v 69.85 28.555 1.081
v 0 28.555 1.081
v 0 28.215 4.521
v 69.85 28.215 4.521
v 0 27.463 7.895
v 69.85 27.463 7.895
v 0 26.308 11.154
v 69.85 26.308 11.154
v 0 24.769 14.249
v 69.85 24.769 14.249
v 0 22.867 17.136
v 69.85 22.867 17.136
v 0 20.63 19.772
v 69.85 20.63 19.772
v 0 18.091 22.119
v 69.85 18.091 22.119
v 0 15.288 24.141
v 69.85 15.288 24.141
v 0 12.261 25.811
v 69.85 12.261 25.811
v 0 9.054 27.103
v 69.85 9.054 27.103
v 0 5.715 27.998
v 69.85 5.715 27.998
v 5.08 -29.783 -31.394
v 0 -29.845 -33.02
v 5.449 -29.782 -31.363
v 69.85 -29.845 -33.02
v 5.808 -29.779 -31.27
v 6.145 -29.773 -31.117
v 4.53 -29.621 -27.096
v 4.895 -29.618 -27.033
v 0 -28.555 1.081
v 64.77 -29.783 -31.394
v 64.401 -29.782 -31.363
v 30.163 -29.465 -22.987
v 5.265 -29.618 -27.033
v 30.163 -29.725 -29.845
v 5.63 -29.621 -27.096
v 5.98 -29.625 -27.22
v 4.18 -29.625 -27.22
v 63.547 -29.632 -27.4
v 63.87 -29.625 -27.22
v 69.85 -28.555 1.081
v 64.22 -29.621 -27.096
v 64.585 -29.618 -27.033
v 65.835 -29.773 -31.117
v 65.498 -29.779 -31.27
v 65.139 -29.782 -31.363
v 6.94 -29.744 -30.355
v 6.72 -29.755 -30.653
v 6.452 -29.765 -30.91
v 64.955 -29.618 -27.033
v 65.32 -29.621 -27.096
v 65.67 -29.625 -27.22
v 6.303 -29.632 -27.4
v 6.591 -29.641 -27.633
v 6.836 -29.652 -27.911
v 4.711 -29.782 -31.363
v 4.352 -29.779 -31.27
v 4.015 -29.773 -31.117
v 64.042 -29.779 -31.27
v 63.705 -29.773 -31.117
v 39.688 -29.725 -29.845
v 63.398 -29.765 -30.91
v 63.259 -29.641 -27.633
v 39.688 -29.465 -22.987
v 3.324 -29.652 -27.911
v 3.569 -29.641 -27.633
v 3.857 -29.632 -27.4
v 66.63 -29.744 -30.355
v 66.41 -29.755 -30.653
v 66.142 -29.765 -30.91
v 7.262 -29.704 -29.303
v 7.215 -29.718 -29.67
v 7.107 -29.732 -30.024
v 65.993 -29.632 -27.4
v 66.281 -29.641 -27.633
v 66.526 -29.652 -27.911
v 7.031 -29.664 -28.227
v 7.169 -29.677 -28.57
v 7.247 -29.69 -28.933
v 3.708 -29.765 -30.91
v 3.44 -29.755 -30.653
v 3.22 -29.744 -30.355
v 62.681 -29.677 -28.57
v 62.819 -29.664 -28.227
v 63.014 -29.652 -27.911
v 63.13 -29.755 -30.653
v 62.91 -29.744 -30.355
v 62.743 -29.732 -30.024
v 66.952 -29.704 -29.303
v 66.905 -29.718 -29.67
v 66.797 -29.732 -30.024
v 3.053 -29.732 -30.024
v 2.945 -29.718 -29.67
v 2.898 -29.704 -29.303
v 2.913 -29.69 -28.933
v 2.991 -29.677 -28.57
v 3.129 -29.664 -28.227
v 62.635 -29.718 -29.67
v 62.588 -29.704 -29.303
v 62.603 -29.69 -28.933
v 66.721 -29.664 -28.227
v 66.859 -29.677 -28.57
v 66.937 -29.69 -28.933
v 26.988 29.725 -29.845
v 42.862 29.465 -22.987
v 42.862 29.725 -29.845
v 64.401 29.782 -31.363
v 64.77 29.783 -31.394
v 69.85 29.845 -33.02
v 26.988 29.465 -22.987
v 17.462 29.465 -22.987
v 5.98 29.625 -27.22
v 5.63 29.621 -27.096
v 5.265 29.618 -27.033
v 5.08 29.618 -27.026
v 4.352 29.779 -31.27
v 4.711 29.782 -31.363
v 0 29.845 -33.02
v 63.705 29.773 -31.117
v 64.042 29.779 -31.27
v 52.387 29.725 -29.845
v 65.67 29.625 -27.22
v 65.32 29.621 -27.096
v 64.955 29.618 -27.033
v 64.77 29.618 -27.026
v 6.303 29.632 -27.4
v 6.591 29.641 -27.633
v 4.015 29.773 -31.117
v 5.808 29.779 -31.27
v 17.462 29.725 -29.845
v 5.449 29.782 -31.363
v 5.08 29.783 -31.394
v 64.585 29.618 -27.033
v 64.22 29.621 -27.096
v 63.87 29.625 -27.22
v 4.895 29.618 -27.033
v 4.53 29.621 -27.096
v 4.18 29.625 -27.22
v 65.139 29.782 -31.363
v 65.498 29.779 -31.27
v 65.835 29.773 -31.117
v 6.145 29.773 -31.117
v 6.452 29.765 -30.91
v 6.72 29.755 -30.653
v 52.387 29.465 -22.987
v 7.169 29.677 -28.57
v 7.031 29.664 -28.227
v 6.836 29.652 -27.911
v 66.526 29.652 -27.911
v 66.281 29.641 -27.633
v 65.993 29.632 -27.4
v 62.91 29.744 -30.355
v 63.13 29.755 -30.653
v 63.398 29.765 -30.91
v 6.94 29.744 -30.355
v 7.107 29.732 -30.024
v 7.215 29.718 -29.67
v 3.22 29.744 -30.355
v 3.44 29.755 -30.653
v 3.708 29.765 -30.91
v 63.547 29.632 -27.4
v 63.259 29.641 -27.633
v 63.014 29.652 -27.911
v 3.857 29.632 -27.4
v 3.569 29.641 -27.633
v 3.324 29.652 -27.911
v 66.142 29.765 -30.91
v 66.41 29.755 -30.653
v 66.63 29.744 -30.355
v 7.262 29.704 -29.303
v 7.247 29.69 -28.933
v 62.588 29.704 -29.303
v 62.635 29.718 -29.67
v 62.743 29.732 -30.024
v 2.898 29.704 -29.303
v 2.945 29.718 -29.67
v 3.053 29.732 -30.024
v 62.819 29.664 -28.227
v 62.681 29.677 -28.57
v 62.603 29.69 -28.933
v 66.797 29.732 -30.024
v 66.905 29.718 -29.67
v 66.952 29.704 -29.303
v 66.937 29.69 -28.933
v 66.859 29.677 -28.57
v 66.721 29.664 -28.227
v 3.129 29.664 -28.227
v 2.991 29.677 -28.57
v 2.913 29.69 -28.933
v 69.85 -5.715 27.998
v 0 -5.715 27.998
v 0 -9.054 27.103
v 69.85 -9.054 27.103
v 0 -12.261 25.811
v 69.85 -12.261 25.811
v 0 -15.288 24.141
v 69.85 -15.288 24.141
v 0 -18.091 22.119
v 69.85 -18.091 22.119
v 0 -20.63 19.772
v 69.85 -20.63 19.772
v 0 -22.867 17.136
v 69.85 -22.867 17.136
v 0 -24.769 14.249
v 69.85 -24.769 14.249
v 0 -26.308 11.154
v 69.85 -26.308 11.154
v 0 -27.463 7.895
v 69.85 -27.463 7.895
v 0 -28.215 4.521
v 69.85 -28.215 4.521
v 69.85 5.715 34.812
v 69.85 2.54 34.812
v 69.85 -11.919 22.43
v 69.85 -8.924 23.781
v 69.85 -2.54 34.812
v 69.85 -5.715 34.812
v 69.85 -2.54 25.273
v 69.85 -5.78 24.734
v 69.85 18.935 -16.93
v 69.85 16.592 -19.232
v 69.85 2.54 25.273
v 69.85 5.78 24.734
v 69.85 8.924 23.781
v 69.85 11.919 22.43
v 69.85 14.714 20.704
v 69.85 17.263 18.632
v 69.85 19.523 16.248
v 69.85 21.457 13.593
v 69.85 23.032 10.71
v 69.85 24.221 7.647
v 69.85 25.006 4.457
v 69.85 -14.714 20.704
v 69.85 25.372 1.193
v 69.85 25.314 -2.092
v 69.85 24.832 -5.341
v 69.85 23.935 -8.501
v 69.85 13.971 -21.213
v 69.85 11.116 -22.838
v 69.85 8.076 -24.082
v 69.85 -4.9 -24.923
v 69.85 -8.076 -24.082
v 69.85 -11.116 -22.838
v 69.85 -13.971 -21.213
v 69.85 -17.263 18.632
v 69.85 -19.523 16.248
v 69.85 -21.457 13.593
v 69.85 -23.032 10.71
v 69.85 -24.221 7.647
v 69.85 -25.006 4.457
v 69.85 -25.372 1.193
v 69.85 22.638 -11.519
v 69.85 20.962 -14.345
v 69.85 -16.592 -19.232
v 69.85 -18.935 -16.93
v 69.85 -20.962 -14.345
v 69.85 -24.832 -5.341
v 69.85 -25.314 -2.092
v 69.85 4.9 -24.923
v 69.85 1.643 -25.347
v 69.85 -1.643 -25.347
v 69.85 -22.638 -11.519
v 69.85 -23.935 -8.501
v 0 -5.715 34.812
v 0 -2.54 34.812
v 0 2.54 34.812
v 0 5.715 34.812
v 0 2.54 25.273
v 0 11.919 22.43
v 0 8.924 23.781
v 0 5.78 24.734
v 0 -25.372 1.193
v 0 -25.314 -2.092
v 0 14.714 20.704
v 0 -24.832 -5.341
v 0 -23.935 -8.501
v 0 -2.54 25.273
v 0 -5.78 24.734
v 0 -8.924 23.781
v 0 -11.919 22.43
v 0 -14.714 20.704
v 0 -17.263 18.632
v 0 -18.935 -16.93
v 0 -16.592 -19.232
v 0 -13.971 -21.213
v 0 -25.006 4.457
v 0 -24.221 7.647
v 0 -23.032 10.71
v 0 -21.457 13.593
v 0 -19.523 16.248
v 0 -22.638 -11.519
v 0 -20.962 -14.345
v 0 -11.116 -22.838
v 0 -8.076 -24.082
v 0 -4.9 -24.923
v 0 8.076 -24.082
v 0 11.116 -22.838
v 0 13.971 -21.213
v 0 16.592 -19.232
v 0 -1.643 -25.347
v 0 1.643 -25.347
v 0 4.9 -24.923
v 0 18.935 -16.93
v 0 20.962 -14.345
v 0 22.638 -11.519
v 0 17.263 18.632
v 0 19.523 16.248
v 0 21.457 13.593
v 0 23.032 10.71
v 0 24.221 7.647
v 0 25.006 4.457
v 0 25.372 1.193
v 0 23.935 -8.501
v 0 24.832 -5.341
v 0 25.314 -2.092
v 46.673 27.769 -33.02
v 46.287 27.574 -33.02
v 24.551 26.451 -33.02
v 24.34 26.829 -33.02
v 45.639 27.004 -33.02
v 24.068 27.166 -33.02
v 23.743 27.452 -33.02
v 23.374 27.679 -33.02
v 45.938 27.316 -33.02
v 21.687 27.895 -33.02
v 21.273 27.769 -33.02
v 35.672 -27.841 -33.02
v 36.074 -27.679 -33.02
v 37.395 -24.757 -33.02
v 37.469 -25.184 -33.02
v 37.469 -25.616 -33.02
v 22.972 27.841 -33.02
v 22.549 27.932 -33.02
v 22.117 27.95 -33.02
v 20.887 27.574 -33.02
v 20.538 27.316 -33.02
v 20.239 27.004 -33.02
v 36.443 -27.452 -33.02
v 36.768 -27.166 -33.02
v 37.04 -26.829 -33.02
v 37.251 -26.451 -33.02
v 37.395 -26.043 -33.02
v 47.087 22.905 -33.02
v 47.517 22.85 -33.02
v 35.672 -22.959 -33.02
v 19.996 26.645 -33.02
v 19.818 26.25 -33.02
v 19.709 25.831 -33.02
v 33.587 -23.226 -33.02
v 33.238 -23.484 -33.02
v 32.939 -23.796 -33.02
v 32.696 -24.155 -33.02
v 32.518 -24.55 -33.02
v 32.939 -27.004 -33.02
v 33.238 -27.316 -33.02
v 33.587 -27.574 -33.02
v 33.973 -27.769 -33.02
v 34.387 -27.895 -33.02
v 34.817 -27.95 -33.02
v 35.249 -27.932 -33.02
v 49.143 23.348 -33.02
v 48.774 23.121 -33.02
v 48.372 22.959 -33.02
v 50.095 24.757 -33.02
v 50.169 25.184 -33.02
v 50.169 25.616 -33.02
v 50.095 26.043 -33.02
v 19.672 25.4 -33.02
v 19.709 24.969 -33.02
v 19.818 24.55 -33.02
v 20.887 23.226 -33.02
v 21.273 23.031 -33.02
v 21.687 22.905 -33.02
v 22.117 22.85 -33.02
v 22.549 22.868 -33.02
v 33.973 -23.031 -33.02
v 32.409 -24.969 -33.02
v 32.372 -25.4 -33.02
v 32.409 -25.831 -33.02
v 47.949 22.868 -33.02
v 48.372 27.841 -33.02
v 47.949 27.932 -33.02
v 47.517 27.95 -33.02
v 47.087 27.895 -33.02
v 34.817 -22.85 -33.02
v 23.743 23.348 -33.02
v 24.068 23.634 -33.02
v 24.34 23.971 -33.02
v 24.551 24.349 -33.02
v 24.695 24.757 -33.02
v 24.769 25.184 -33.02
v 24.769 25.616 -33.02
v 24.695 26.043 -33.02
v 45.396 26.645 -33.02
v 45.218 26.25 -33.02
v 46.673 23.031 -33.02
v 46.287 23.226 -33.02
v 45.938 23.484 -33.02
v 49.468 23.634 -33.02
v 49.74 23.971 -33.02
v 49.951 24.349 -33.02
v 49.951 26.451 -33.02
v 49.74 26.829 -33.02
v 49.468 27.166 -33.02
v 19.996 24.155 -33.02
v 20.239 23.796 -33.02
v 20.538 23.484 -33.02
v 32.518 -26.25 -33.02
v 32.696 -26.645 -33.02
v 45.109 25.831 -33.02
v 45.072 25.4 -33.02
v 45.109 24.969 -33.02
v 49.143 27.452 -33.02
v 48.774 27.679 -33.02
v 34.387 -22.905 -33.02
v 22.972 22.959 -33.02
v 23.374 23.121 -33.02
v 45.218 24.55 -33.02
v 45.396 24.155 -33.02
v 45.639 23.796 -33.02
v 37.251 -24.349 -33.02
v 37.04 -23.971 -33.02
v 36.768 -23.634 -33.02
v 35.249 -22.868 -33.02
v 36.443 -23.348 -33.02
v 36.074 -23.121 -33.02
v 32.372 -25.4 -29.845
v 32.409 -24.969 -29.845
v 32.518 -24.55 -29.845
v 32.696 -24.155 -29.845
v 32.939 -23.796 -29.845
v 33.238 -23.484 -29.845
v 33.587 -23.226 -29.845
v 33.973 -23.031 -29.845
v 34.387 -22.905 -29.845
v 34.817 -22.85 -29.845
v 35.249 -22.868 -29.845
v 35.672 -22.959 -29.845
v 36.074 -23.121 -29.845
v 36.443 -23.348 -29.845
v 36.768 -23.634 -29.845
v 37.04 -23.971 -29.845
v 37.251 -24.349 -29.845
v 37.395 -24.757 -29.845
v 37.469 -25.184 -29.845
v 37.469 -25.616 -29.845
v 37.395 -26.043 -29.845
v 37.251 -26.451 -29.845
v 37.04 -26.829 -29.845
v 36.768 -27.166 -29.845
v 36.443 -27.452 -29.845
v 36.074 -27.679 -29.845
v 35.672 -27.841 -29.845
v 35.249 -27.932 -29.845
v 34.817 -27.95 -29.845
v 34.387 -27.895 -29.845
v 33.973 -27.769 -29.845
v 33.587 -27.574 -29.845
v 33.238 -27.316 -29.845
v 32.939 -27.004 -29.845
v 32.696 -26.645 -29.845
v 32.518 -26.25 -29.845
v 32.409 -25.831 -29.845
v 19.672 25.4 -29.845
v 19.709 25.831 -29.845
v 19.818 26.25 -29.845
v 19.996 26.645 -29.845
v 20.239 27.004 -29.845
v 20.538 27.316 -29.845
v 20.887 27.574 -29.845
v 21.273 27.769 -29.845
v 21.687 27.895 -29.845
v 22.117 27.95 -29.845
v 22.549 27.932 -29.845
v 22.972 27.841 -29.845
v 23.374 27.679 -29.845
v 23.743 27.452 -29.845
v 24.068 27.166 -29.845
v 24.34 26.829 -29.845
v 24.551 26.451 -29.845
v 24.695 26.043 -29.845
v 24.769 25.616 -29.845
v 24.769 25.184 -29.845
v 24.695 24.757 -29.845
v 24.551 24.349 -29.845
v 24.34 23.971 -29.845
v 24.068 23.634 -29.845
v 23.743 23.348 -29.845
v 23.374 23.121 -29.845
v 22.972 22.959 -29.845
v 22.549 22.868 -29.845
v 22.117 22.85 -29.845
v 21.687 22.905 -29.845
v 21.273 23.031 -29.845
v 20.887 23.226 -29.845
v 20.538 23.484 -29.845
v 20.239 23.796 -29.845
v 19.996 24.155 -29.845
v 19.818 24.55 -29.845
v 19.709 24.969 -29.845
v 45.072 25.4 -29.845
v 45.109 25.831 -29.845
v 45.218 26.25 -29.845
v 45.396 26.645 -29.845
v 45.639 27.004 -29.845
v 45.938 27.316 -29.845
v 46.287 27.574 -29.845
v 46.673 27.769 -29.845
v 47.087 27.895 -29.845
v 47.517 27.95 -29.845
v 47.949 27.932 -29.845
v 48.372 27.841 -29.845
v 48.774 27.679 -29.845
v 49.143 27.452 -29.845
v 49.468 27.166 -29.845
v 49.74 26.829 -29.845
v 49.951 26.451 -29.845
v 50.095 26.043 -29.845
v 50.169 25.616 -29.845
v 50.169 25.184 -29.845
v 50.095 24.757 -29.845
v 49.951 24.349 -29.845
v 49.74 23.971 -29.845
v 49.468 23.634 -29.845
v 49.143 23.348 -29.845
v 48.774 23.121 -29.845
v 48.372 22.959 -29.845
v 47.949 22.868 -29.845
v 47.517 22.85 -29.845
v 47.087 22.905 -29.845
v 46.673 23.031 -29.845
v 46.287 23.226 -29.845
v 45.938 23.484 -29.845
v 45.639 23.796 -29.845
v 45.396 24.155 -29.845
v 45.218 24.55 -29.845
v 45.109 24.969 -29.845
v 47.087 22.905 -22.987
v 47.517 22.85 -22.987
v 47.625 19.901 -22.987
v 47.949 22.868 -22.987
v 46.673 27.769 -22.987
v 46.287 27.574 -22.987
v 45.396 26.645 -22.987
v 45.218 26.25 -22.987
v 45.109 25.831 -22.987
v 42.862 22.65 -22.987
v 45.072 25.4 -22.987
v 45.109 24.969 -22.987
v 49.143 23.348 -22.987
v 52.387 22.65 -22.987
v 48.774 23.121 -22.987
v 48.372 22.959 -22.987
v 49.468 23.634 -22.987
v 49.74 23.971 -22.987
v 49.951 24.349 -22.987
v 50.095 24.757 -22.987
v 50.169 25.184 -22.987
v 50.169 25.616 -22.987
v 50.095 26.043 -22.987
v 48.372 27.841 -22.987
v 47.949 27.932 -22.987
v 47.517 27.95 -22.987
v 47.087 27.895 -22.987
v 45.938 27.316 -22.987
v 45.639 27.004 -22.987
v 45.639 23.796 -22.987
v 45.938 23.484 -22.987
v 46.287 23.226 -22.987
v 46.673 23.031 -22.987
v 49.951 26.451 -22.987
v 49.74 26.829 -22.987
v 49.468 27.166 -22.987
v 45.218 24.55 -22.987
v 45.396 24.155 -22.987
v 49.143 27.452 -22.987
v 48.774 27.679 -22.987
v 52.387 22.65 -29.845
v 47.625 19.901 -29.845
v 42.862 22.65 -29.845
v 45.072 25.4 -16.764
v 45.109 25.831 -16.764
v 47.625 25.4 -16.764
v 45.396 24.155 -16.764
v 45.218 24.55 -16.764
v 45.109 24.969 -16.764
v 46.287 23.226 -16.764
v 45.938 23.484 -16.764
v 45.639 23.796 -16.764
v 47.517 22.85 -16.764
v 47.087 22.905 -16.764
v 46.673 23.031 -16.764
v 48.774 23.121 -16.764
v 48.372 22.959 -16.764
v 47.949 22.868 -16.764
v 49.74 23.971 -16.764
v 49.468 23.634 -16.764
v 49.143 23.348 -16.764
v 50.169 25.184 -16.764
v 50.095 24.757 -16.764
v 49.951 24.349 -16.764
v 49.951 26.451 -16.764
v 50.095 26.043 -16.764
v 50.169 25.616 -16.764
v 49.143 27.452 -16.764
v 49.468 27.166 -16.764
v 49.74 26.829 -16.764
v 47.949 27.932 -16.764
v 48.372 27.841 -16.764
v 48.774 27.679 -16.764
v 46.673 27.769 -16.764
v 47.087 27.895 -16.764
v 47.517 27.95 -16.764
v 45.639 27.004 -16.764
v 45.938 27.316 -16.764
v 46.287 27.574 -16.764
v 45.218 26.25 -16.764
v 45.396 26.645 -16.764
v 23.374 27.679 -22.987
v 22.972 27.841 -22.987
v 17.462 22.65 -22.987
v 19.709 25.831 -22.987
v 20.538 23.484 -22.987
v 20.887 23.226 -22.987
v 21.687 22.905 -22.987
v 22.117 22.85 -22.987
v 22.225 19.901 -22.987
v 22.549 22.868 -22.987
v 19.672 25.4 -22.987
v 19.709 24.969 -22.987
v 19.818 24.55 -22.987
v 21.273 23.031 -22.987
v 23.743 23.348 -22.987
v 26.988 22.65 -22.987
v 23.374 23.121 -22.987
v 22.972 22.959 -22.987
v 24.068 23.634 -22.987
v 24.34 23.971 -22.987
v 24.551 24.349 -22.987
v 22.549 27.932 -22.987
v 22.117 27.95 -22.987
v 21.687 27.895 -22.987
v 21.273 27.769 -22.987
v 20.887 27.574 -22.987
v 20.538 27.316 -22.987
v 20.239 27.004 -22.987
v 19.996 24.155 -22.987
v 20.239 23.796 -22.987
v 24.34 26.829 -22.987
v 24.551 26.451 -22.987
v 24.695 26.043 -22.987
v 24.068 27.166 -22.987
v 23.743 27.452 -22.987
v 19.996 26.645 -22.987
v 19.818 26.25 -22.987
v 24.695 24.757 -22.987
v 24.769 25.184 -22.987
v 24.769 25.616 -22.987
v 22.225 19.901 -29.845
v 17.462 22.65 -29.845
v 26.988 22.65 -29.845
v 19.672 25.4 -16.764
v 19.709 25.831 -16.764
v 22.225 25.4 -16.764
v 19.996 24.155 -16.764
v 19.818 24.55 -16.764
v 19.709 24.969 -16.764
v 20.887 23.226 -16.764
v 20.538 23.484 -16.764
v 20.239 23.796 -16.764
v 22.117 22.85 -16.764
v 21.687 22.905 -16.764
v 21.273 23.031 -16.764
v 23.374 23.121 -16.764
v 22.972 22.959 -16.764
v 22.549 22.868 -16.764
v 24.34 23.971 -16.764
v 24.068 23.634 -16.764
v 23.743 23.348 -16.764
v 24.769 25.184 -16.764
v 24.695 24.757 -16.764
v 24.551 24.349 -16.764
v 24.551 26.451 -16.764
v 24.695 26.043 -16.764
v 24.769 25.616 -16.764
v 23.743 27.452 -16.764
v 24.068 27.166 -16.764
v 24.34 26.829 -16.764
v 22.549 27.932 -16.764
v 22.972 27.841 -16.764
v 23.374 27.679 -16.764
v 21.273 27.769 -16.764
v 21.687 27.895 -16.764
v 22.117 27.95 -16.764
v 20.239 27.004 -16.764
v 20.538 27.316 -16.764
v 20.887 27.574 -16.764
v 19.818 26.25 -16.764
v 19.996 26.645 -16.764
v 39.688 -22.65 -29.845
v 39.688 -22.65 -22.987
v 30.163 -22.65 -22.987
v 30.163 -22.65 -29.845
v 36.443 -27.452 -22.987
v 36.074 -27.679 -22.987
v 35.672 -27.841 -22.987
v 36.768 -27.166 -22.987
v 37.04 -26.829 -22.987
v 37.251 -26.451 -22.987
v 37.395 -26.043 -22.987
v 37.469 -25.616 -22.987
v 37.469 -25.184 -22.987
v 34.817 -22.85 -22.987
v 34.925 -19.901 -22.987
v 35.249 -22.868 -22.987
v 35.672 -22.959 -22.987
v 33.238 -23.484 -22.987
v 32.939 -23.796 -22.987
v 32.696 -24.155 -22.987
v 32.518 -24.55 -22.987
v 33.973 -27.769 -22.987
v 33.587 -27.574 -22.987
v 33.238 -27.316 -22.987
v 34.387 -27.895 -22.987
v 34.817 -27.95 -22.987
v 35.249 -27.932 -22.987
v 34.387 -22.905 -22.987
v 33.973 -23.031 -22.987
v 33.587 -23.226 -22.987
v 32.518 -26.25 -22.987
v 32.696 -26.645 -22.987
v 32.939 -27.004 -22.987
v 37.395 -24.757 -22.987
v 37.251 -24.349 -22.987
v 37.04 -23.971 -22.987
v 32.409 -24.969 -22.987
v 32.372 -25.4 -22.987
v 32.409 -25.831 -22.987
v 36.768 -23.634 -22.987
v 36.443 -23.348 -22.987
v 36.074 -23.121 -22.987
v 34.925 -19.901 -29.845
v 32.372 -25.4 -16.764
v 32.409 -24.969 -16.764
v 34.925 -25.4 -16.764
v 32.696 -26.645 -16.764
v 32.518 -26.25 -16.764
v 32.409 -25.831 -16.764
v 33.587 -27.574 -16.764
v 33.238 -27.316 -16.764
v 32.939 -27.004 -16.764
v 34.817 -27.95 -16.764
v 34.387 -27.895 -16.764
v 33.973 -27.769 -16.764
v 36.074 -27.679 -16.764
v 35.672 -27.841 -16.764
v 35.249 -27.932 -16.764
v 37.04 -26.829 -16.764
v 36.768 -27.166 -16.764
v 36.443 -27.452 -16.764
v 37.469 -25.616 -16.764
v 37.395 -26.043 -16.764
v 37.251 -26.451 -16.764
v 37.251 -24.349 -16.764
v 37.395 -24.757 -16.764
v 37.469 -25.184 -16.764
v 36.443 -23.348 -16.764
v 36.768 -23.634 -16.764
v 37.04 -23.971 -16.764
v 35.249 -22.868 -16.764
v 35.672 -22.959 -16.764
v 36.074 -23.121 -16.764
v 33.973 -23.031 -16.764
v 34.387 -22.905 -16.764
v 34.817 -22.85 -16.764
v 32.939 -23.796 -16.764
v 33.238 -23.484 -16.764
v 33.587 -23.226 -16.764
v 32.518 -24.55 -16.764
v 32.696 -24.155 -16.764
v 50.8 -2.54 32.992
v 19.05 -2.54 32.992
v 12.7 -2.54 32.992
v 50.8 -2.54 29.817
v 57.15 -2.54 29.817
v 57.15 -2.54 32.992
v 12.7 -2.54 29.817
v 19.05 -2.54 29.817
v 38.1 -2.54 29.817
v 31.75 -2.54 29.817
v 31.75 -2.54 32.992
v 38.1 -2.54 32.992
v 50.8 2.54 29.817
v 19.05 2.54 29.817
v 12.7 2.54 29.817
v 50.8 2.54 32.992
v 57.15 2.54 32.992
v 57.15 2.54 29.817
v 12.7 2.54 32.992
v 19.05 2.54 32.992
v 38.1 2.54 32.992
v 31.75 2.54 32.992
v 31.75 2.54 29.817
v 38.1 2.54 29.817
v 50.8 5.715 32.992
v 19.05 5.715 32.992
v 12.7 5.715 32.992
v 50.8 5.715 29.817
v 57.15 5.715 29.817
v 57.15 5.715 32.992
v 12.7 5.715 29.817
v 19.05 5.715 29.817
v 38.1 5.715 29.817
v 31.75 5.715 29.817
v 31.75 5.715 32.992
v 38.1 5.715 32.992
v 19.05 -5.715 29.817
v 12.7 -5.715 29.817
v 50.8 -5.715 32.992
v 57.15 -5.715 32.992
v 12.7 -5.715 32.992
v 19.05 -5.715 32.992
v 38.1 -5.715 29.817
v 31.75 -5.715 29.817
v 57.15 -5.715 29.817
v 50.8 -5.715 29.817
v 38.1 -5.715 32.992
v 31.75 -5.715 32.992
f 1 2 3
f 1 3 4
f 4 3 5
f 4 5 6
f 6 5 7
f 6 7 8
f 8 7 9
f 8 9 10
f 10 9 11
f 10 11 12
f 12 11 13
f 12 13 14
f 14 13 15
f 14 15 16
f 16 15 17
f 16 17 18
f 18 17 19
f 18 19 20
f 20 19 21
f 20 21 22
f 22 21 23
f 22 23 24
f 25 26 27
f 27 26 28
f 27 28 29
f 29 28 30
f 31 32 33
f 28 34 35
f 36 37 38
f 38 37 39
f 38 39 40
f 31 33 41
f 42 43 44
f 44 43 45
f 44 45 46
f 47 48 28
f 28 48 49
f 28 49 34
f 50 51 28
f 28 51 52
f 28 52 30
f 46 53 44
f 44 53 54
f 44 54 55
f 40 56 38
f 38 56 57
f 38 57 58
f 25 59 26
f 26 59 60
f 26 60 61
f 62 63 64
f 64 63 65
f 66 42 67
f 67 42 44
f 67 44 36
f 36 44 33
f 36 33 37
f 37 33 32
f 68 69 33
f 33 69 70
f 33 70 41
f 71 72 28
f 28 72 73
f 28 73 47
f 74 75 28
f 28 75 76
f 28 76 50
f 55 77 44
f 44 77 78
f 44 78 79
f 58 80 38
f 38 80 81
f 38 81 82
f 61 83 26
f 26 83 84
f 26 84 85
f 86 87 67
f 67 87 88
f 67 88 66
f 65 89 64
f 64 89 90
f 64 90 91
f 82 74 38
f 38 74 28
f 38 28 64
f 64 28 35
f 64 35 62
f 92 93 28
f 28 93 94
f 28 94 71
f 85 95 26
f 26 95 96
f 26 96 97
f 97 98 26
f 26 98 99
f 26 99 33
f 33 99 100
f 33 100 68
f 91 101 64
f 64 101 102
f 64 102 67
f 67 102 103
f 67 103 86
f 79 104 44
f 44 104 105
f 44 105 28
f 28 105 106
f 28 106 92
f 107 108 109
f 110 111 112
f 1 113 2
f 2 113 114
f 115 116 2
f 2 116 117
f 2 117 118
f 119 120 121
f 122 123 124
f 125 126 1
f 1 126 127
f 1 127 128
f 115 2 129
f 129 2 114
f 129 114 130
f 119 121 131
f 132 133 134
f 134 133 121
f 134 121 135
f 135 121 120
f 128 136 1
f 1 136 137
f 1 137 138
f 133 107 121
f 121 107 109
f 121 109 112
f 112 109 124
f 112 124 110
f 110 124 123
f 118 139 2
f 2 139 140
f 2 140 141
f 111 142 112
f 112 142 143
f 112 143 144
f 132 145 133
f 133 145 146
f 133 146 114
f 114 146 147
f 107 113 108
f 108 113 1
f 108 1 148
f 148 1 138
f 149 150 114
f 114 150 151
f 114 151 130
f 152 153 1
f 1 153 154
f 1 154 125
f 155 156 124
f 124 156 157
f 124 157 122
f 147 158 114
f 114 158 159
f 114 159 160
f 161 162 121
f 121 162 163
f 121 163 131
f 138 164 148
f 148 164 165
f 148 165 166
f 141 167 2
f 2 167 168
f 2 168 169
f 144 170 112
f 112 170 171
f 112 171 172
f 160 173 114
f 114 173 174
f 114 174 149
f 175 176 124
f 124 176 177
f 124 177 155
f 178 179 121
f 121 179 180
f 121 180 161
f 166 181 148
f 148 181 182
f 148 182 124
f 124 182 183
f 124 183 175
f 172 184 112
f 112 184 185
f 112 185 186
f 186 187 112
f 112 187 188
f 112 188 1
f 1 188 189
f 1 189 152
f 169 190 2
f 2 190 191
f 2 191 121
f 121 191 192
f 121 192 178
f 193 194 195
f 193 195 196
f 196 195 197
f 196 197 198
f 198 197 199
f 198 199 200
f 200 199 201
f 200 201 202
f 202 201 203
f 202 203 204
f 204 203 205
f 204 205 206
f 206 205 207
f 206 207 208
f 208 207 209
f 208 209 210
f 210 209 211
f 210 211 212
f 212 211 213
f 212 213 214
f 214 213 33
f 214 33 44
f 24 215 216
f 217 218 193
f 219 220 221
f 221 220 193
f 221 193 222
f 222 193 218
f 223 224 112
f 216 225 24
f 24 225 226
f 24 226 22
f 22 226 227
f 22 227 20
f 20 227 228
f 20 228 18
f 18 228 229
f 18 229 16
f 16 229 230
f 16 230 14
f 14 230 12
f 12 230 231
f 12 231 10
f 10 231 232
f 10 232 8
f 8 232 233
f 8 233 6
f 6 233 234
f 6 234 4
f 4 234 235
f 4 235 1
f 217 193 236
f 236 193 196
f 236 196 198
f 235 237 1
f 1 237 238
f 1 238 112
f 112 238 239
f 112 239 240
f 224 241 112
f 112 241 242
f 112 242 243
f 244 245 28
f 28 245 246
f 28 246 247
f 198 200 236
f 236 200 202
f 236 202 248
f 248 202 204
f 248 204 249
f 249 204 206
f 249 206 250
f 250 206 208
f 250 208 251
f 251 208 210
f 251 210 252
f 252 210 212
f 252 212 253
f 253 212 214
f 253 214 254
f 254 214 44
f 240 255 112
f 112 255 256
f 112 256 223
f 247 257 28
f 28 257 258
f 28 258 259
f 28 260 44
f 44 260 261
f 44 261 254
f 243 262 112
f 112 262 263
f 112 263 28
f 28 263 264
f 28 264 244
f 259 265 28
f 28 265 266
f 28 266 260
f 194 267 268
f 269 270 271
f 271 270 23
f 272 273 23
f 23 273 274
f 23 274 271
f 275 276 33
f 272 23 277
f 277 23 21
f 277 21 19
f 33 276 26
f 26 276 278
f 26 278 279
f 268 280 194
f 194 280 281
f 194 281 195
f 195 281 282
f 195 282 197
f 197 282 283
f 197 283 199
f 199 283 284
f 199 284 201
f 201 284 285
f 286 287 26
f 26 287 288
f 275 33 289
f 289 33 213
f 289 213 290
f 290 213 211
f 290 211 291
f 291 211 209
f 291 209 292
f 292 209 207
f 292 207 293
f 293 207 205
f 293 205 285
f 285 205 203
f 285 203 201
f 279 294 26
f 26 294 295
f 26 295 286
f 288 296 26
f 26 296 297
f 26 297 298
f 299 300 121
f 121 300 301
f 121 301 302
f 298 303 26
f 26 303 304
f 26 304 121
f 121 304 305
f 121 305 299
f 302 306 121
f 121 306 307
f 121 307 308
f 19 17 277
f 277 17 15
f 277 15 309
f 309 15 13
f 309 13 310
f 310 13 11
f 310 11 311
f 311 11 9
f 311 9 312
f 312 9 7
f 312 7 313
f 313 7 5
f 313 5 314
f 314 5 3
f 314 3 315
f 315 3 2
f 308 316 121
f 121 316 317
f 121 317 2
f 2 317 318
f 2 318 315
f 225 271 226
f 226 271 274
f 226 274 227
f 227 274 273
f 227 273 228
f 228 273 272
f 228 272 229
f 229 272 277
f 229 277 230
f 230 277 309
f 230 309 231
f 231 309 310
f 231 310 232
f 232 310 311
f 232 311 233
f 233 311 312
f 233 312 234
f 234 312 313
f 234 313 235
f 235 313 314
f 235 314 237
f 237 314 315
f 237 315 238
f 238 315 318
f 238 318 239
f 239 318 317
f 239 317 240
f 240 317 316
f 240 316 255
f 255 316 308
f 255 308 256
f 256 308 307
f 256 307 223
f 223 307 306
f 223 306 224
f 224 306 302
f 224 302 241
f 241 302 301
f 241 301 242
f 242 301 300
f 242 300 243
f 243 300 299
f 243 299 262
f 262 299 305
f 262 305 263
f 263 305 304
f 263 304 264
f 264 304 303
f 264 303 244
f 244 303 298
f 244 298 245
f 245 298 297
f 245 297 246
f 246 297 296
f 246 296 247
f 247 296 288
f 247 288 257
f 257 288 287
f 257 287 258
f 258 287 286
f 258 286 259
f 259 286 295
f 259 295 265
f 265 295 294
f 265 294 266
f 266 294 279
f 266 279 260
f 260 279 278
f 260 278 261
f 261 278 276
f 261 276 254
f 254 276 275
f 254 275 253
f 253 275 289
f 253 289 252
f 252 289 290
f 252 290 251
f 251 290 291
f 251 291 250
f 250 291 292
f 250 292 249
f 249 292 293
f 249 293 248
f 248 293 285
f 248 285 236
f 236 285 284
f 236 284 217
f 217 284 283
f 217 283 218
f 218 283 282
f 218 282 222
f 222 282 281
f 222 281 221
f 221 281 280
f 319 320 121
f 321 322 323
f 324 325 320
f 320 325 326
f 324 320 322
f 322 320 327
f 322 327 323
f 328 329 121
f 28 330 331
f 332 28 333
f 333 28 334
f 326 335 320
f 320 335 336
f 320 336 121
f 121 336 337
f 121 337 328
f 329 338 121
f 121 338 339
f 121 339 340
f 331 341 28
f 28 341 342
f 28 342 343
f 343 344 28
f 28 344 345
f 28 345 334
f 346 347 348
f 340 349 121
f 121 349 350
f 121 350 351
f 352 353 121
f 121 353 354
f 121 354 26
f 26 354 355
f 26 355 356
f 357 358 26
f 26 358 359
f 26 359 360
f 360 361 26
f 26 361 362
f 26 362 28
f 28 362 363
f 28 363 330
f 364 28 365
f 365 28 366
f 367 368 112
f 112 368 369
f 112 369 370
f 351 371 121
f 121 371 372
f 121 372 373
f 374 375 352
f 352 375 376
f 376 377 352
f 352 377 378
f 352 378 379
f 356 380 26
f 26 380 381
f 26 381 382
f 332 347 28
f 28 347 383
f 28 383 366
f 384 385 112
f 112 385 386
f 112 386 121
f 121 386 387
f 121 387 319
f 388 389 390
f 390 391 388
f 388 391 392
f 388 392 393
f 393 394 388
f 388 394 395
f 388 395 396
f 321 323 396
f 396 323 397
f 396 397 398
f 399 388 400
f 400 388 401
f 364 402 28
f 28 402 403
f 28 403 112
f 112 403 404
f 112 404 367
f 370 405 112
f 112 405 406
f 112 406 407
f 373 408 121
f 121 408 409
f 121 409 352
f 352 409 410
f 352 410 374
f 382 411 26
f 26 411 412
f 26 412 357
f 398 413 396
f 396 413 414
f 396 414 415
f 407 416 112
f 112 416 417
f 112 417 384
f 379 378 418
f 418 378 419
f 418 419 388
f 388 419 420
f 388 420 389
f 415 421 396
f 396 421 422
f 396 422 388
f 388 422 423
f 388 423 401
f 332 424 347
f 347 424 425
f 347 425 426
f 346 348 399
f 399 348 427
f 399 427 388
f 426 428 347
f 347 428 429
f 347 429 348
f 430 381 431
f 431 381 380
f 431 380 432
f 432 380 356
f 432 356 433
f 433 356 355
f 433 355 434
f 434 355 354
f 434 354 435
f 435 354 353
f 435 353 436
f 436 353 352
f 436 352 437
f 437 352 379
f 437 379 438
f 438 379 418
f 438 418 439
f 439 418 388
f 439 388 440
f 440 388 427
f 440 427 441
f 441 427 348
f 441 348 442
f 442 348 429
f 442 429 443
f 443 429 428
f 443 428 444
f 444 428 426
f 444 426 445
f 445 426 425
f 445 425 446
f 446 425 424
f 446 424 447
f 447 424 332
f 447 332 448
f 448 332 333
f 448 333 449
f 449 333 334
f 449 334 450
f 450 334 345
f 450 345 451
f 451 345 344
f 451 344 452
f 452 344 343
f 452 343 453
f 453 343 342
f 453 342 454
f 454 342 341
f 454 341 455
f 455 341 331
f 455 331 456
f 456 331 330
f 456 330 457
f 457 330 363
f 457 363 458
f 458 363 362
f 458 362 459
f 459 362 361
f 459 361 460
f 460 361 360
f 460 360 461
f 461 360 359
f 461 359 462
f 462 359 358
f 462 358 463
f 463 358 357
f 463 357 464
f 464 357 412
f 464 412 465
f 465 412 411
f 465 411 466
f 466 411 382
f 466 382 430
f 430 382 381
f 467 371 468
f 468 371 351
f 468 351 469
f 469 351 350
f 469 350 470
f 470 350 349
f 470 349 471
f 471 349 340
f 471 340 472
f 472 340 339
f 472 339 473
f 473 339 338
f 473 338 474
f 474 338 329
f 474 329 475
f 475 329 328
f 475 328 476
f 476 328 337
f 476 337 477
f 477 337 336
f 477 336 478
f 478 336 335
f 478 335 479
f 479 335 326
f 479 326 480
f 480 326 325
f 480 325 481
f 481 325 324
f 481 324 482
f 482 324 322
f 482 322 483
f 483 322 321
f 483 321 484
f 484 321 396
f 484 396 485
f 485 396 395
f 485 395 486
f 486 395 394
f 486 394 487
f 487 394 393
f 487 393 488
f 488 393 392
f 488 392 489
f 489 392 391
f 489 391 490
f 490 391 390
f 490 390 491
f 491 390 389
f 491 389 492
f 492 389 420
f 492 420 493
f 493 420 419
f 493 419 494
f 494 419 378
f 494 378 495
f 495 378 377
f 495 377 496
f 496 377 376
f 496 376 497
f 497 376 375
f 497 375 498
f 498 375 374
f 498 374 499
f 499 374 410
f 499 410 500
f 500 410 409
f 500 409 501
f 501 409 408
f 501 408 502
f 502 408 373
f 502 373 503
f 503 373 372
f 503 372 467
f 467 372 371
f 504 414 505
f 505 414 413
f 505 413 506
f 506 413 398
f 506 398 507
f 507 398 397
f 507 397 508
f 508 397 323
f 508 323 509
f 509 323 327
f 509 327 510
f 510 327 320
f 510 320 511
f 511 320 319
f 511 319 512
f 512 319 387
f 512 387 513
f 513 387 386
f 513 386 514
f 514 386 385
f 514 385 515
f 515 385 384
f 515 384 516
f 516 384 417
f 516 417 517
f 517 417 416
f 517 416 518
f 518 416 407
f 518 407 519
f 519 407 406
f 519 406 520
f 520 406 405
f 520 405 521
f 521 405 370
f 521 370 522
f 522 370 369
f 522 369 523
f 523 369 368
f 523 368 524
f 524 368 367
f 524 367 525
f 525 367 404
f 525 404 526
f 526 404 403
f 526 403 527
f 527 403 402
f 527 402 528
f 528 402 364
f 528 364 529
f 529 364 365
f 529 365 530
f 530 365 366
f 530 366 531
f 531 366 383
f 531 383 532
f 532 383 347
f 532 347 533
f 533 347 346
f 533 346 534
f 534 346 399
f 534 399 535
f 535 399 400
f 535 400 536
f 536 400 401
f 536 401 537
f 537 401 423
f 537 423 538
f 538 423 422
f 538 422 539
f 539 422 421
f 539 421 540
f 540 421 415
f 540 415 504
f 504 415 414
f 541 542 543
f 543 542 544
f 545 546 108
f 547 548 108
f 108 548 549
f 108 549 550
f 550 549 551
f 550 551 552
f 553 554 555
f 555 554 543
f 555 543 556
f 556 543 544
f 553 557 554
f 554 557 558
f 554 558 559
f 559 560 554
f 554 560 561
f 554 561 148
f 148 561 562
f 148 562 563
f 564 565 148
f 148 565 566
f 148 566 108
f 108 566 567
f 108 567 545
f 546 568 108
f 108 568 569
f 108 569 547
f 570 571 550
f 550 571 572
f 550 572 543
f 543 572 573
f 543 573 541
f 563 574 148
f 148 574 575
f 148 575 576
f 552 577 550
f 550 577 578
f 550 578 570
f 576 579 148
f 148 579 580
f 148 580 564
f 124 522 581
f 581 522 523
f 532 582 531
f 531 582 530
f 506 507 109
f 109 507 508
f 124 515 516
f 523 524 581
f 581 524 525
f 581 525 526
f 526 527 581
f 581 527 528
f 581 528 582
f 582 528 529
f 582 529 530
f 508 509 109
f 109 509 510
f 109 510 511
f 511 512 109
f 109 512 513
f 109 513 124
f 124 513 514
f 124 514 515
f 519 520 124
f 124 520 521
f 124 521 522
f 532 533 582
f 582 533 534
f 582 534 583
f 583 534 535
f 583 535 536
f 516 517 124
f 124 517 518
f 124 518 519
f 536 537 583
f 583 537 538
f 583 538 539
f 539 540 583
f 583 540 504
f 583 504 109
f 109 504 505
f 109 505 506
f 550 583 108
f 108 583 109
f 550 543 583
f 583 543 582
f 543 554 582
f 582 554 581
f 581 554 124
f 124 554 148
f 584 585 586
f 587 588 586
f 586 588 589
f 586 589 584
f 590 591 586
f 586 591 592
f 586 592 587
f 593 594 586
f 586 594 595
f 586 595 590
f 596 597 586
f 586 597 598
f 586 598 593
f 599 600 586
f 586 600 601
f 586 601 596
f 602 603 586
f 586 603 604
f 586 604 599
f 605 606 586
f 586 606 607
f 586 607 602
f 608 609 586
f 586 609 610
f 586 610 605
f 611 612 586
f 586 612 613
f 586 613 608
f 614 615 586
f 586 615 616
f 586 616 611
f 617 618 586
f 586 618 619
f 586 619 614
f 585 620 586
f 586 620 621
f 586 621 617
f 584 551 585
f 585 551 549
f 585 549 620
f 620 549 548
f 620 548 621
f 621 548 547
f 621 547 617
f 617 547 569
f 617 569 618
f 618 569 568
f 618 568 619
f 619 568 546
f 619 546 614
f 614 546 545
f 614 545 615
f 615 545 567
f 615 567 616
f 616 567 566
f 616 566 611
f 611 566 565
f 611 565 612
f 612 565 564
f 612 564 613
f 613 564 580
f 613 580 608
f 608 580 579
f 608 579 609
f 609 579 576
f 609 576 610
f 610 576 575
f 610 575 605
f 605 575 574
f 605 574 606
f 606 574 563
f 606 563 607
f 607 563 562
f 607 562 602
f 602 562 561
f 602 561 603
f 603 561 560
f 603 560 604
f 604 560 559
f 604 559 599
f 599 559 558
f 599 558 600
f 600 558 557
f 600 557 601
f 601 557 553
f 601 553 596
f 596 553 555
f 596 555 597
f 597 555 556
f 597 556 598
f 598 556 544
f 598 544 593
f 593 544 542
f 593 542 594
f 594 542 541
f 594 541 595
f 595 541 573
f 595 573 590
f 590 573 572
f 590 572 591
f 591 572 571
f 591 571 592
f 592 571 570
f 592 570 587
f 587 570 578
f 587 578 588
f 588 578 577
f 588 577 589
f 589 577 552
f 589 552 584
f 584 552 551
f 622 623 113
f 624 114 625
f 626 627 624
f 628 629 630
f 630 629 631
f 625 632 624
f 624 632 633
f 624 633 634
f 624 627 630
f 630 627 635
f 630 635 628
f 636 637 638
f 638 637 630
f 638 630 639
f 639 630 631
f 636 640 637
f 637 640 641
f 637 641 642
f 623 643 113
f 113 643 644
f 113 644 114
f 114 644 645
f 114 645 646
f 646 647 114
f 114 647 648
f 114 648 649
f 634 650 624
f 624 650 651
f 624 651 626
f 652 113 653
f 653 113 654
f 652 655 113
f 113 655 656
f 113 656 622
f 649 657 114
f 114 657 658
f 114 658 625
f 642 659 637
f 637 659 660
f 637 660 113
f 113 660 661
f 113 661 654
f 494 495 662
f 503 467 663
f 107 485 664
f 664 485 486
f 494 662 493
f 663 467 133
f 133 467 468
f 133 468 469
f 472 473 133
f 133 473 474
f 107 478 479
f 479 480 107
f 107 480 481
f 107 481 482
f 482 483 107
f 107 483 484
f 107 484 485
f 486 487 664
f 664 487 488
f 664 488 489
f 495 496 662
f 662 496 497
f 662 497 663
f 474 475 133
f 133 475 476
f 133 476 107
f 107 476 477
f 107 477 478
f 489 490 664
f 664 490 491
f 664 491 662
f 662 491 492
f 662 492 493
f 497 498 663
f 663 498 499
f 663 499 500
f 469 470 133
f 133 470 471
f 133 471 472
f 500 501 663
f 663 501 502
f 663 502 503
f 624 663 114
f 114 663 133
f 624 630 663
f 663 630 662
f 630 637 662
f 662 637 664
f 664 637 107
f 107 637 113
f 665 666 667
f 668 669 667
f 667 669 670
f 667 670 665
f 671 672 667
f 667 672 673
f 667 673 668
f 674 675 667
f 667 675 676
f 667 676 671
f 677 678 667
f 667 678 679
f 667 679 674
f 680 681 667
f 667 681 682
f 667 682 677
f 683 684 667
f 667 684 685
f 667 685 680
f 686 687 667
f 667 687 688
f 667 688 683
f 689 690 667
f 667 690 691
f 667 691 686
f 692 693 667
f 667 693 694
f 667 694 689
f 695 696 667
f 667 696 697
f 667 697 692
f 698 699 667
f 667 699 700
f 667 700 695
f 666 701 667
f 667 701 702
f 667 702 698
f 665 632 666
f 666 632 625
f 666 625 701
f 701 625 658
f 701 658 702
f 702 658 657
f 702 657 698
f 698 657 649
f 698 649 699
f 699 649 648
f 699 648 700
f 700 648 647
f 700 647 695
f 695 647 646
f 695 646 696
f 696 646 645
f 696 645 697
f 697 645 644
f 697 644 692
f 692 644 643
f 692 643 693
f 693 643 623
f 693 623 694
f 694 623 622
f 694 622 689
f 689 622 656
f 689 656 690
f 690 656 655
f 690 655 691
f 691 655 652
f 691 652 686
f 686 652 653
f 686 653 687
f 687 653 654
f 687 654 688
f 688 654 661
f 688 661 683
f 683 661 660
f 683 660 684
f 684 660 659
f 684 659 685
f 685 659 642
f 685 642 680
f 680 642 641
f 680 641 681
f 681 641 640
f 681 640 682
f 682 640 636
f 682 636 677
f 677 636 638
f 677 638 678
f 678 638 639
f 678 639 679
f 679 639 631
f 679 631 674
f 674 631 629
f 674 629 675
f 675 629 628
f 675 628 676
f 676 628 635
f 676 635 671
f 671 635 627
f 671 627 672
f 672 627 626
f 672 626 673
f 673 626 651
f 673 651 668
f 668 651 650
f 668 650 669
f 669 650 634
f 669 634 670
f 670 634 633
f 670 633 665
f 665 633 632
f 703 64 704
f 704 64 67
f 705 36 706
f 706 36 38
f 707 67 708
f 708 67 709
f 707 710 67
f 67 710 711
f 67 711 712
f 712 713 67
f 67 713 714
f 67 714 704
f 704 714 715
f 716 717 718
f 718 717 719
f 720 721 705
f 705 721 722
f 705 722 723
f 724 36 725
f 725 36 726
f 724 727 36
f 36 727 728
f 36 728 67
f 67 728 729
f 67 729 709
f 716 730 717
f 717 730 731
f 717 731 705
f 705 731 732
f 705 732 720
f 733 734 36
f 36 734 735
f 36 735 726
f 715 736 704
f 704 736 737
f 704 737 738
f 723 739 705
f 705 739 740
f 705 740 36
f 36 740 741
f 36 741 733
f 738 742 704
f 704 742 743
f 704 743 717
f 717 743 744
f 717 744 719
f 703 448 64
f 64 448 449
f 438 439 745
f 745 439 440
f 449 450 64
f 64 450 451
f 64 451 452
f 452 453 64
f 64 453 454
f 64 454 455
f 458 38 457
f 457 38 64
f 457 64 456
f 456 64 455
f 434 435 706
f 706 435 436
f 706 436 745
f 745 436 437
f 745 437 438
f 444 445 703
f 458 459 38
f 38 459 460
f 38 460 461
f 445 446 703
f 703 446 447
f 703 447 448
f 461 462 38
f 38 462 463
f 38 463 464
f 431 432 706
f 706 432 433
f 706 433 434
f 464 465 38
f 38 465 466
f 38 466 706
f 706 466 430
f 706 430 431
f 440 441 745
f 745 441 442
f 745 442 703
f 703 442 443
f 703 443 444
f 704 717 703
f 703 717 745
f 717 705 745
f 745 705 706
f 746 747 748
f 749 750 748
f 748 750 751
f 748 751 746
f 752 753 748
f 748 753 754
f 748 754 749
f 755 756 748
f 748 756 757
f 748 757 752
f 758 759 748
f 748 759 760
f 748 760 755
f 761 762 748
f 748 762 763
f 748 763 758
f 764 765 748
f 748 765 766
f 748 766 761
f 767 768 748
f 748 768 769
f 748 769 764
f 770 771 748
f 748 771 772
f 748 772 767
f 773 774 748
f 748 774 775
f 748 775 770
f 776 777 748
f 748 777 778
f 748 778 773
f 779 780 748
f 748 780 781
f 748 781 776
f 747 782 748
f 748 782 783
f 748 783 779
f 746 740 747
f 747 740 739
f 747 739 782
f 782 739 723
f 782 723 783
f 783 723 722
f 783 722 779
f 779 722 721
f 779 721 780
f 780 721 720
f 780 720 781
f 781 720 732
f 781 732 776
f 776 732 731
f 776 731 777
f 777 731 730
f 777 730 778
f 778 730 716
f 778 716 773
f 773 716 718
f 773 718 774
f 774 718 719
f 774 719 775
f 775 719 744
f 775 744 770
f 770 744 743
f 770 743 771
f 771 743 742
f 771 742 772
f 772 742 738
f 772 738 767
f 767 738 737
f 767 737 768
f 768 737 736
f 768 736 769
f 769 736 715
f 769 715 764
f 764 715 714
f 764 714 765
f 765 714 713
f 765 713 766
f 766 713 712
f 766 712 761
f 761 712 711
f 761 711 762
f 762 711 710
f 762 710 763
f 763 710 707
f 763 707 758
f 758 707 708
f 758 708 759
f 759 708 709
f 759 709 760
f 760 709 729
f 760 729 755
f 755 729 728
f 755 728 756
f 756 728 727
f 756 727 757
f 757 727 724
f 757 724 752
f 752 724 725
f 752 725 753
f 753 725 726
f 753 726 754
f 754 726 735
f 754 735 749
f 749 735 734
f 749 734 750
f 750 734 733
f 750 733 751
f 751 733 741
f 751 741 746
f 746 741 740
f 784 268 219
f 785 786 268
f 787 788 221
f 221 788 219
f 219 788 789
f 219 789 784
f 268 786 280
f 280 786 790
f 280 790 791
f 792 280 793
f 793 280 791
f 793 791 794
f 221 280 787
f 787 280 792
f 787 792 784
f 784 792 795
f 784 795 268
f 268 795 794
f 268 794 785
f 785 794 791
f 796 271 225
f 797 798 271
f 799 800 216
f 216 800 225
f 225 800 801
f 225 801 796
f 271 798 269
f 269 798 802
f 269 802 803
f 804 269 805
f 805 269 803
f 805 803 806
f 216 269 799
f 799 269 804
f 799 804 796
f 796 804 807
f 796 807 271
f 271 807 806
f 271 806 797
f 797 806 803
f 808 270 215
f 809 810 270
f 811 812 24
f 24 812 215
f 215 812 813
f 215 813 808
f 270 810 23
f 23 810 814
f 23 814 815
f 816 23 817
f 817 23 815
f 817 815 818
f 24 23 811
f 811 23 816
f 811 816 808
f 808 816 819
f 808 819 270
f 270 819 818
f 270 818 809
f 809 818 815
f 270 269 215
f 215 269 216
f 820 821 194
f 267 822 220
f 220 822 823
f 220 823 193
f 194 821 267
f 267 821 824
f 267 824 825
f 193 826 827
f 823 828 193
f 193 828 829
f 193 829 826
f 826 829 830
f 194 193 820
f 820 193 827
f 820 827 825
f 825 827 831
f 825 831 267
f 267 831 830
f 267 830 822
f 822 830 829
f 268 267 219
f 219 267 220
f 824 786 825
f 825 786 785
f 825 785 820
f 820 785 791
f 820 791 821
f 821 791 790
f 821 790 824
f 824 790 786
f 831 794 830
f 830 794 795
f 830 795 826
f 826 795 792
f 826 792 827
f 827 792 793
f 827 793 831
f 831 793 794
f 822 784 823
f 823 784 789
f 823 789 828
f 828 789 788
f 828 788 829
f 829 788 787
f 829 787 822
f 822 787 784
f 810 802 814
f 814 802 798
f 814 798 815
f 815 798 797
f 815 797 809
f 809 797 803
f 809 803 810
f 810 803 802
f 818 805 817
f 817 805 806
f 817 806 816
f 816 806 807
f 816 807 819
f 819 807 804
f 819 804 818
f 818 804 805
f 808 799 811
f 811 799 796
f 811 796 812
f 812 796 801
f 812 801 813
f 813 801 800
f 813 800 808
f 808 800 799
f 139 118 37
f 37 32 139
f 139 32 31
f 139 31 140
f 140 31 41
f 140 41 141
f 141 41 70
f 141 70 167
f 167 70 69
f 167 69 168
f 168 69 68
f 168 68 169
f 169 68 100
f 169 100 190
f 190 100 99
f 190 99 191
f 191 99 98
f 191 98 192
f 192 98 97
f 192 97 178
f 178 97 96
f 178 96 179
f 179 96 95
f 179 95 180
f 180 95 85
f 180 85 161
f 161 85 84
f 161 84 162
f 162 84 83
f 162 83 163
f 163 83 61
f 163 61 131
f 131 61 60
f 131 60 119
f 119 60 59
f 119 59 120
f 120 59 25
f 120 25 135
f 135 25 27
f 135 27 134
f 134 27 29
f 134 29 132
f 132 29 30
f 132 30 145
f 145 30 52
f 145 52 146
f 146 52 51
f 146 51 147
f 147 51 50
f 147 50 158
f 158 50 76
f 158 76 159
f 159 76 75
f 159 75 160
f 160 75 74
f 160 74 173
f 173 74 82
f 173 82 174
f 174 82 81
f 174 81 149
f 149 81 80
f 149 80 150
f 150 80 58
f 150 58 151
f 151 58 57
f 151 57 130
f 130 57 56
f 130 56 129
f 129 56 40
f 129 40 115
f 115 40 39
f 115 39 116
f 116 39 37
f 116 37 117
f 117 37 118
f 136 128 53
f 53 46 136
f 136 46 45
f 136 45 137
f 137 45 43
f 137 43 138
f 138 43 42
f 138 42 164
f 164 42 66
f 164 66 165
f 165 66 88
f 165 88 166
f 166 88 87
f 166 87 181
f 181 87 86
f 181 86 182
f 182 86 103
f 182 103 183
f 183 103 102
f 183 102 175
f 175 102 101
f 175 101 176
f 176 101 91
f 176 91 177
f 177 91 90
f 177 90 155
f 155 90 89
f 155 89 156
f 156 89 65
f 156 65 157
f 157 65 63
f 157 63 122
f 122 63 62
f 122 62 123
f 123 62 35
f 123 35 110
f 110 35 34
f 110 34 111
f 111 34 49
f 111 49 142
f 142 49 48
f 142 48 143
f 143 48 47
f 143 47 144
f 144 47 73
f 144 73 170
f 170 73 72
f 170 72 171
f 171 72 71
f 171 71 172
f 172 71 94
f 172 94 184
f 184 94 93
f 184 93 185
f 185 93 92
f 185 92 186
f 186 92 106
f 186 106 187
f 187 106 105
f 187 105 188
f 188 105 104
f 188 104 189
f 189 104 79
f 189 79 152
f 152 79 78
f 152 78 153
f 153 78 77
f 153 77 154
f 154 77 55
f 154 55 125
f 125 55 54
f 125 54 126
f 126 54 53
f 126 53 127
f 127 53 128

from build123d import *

# Parameters (mm, degrees)
SKETCH1_R               = 28.575
SKETCH1_R_2             = 25.4
BOSS_EXTRUDE1_DEPTH     = 69.85
BOSS_EXTRUDE2_DEPTH     = 69.85
SKETCH4_R               = 2.5527
CUT_EXTRUDE1_DEPTH      = 16.256
CUT_EXTRUDE2_DEPTH      = 6.858
SKETCH9_W               = 9.949702626
SKETCH9_H               = 5.08
CUT_EXTRUDE3_DEPTH      = 83.825520976
BOSS_EXTRUDE3_DEPTH     = 69.85
SKETCH11_W              = 6.35
SKETCH11_H              = 3.175
CUT_EXTRUDE4_DEPTH      = 86.763649601
CUT_EXTRUDE5_DEPTH      = 84.332323558
CUT_EXTRUDE5_DEPTH_BACK = 84.332323558
SKETCH13_R              = 2.1844


with BuildPart() as part:
    # Sketch1 → Boss-Extrude1 (new body)
    with BuildSketch(Plane(origin=(0, 0, 0), x_dir=(0, 0, -1), z_dir=(1, 0, 0))):
        Circle(SKETCH1_R)
        Circle(SKETCH1_R_2, mode=Mode.SUBTRACT)
    extrude(amount=BOSS_EXTRUDE1_DEPTH)

    # Sketch2 → Boss-Extrude2 (add, through all)
    with BuildSketch(Plane(origin=(69.85, 0, 0), x_dir=(0, 0, -1), z_dir=(1, 0, 0))):
        with BuildLine():
            Line((33.02, -29.845), (33.02, 29.845))
            Line((33.02, 29.845), (-1.080565529, 28.554561862))
            ThreePointArc((-1.080565529, 28.554561862), (28.575, 0), (-1.080565529, -28.554561862))
            Line((-1.080565529, -28.554561862), (33.02, -29.845))
        make_face()
    extrude(amount=-BOSS_EXTRUDE2_DEPTH)

    # Sketch4 → Cut-Extrude1 (cut)
    with BuildSketch(Plane(origin=(0, 0, -33.02), x_dir=(-1, 0, 0), z_dir=(0, 0, -1))):
        with Locations((-47.625, 25.4)):
            Circle(SKETCH4_R)
        with Locations((-22.225, 25.4)):
            Circle(SKETCH4_R)
        with Locations((-34.925, -25.4)):
            Circle(SKETCH4_R)
    extrude(amount=-CUT_EXTRUDE1_DEPTH, mode=Mode.SUBTRACT)

    # Sketch7 → Cut-Extrude2 (cut)
    with BuildSketch(Plane(origin=(0, 0, -29.845), x_dir=(-1, 0, 0), z_dir=(0, 0, -1))):
        Polygon((-47.625, 19.900738686), (-42.8625, 22.650369343), (-42.8625, 29.845), (-45.79896584, 29.845), (-49.45103416, 29.845), (-52.3875, 29.845), (-52.3875, 22.650369343), align=None)
        Polygon((-24.05103416, 29.845), (-26.9875, 29.845), (-26.9875, 22.650369343), (-22.225, 19.900738686), (-17.4625, 22.650369343), (-17.4625, 29.845), (-20.39896584, 29.845), align=None)
        Polygon((-39.6875, -22.650369343), (-39.6875, -29.845), (-36.75103416, -29.845), (-33.09896584, -29.845), (-30.1625, -29.845), (-30.1625, -22.650369343), (-34.925, -19.900738686), align=None)
    extrude(amount=-CUT_EXTRUDE2_DEPTH, mode=Mode.SUBTRACT)

    # Sketch9 → Cut-Extrude3 (cut, through all)
    with BuildSketch(Plane(origin=(69.85, 0, 0), x_dir=(0, 0, -1), z_dir=(1, 0, 0))):
        with Locations((-25.4, 0)):
            Rectangle(SKETCH9_W, SKETCH9_H)
    extrude(amount=-CUT_EXTRUDE3_DEPTH, mode=Mode.SUBTRACT)

    # Sketch10 → Boss-Extrude3 (add, through all)
    with BuildSketch(Plane(origin=(69.85, 0, 0), x_dir=(0, 0, -1), z_dir=(1, 0, 0))):
        with BuildLine():
            Line((-34.811887235, 2.54), (-28.461887235, 2.54))
            ThreePointArc((-28.461887235, 2.54), (-28.274378752, 4.134021188), (-27.99766776, 5.715))
            Line((-27.99766776, 5.715), (-34.811887235, 5.715))
            Line((-34.811887235, 5.715), (-34.811887235, 2.54))
        make_face()
        with BuildLine():
            ThreePointArc((-27.99766776, -5.715), (-28.274378752, -4.134021188), (-28.461887235, -2.54))
            Line((-28.461887235, -2.54), (-34.811887235, -2.54))
            Line((-34.811887235, -2.54), (-34.811887235, -5.715))
            Line((-34.811887235, -5.715), (-27.99766776, -5.715))
        make_face()
    extrude(amount=-BOSS_EXTRUDE3_DEPTH)

    # Sketch11 → Cut-Extrude4 (cut, through all)
    with BuildSketch(Plane(origin=(0, 5.715, 0), x_dir=(1, 0, 0), z_dir=(0, 1, 0))):
        with Locations((53.975, -31.404777498)):
            Rectangle(SKETCH11_W, SKETCH11_H)
        with Locations((34.925, -31.404777498)):
            Rectangle(SKETCH11_W, SKETCH11_H)
        with Locations((15.875, -31.404777498)):
            Rectangle(SKETCH11_W, SKETCH11_H)
    extrude(amount=-CUT_EXTRUDE4_DEPTH, mode=Mode.SUBTRACT)

    # Sketch13 → Cut-Extrude5 (cut, two sides: drawn at the far end of the back side and taken through both)
    with BuildSketch(Plane(origin=(0, 0, 0.540476051), x_dir=(1, 0, 0), z_dir=(0, -1, 0)).offset(-CUT_EXTRUDE5_DEPTH_BACK)):
        with Locations(Location((64.77, -29.750476051, 0), (0, 0, 270))):
            Circle(SKETCH13_R)
        with Locations(Location((5.08, -29.750476051, 0), (0, 0, 270))):
            Circle(SKETCH13_R)
    extrude(amount=CUT_EXTRUDE5_DEPTH + CUT_EXTRUDE5_DEPTH_BACK, mode=Mode.SUBTRACT)


solid = part.part
